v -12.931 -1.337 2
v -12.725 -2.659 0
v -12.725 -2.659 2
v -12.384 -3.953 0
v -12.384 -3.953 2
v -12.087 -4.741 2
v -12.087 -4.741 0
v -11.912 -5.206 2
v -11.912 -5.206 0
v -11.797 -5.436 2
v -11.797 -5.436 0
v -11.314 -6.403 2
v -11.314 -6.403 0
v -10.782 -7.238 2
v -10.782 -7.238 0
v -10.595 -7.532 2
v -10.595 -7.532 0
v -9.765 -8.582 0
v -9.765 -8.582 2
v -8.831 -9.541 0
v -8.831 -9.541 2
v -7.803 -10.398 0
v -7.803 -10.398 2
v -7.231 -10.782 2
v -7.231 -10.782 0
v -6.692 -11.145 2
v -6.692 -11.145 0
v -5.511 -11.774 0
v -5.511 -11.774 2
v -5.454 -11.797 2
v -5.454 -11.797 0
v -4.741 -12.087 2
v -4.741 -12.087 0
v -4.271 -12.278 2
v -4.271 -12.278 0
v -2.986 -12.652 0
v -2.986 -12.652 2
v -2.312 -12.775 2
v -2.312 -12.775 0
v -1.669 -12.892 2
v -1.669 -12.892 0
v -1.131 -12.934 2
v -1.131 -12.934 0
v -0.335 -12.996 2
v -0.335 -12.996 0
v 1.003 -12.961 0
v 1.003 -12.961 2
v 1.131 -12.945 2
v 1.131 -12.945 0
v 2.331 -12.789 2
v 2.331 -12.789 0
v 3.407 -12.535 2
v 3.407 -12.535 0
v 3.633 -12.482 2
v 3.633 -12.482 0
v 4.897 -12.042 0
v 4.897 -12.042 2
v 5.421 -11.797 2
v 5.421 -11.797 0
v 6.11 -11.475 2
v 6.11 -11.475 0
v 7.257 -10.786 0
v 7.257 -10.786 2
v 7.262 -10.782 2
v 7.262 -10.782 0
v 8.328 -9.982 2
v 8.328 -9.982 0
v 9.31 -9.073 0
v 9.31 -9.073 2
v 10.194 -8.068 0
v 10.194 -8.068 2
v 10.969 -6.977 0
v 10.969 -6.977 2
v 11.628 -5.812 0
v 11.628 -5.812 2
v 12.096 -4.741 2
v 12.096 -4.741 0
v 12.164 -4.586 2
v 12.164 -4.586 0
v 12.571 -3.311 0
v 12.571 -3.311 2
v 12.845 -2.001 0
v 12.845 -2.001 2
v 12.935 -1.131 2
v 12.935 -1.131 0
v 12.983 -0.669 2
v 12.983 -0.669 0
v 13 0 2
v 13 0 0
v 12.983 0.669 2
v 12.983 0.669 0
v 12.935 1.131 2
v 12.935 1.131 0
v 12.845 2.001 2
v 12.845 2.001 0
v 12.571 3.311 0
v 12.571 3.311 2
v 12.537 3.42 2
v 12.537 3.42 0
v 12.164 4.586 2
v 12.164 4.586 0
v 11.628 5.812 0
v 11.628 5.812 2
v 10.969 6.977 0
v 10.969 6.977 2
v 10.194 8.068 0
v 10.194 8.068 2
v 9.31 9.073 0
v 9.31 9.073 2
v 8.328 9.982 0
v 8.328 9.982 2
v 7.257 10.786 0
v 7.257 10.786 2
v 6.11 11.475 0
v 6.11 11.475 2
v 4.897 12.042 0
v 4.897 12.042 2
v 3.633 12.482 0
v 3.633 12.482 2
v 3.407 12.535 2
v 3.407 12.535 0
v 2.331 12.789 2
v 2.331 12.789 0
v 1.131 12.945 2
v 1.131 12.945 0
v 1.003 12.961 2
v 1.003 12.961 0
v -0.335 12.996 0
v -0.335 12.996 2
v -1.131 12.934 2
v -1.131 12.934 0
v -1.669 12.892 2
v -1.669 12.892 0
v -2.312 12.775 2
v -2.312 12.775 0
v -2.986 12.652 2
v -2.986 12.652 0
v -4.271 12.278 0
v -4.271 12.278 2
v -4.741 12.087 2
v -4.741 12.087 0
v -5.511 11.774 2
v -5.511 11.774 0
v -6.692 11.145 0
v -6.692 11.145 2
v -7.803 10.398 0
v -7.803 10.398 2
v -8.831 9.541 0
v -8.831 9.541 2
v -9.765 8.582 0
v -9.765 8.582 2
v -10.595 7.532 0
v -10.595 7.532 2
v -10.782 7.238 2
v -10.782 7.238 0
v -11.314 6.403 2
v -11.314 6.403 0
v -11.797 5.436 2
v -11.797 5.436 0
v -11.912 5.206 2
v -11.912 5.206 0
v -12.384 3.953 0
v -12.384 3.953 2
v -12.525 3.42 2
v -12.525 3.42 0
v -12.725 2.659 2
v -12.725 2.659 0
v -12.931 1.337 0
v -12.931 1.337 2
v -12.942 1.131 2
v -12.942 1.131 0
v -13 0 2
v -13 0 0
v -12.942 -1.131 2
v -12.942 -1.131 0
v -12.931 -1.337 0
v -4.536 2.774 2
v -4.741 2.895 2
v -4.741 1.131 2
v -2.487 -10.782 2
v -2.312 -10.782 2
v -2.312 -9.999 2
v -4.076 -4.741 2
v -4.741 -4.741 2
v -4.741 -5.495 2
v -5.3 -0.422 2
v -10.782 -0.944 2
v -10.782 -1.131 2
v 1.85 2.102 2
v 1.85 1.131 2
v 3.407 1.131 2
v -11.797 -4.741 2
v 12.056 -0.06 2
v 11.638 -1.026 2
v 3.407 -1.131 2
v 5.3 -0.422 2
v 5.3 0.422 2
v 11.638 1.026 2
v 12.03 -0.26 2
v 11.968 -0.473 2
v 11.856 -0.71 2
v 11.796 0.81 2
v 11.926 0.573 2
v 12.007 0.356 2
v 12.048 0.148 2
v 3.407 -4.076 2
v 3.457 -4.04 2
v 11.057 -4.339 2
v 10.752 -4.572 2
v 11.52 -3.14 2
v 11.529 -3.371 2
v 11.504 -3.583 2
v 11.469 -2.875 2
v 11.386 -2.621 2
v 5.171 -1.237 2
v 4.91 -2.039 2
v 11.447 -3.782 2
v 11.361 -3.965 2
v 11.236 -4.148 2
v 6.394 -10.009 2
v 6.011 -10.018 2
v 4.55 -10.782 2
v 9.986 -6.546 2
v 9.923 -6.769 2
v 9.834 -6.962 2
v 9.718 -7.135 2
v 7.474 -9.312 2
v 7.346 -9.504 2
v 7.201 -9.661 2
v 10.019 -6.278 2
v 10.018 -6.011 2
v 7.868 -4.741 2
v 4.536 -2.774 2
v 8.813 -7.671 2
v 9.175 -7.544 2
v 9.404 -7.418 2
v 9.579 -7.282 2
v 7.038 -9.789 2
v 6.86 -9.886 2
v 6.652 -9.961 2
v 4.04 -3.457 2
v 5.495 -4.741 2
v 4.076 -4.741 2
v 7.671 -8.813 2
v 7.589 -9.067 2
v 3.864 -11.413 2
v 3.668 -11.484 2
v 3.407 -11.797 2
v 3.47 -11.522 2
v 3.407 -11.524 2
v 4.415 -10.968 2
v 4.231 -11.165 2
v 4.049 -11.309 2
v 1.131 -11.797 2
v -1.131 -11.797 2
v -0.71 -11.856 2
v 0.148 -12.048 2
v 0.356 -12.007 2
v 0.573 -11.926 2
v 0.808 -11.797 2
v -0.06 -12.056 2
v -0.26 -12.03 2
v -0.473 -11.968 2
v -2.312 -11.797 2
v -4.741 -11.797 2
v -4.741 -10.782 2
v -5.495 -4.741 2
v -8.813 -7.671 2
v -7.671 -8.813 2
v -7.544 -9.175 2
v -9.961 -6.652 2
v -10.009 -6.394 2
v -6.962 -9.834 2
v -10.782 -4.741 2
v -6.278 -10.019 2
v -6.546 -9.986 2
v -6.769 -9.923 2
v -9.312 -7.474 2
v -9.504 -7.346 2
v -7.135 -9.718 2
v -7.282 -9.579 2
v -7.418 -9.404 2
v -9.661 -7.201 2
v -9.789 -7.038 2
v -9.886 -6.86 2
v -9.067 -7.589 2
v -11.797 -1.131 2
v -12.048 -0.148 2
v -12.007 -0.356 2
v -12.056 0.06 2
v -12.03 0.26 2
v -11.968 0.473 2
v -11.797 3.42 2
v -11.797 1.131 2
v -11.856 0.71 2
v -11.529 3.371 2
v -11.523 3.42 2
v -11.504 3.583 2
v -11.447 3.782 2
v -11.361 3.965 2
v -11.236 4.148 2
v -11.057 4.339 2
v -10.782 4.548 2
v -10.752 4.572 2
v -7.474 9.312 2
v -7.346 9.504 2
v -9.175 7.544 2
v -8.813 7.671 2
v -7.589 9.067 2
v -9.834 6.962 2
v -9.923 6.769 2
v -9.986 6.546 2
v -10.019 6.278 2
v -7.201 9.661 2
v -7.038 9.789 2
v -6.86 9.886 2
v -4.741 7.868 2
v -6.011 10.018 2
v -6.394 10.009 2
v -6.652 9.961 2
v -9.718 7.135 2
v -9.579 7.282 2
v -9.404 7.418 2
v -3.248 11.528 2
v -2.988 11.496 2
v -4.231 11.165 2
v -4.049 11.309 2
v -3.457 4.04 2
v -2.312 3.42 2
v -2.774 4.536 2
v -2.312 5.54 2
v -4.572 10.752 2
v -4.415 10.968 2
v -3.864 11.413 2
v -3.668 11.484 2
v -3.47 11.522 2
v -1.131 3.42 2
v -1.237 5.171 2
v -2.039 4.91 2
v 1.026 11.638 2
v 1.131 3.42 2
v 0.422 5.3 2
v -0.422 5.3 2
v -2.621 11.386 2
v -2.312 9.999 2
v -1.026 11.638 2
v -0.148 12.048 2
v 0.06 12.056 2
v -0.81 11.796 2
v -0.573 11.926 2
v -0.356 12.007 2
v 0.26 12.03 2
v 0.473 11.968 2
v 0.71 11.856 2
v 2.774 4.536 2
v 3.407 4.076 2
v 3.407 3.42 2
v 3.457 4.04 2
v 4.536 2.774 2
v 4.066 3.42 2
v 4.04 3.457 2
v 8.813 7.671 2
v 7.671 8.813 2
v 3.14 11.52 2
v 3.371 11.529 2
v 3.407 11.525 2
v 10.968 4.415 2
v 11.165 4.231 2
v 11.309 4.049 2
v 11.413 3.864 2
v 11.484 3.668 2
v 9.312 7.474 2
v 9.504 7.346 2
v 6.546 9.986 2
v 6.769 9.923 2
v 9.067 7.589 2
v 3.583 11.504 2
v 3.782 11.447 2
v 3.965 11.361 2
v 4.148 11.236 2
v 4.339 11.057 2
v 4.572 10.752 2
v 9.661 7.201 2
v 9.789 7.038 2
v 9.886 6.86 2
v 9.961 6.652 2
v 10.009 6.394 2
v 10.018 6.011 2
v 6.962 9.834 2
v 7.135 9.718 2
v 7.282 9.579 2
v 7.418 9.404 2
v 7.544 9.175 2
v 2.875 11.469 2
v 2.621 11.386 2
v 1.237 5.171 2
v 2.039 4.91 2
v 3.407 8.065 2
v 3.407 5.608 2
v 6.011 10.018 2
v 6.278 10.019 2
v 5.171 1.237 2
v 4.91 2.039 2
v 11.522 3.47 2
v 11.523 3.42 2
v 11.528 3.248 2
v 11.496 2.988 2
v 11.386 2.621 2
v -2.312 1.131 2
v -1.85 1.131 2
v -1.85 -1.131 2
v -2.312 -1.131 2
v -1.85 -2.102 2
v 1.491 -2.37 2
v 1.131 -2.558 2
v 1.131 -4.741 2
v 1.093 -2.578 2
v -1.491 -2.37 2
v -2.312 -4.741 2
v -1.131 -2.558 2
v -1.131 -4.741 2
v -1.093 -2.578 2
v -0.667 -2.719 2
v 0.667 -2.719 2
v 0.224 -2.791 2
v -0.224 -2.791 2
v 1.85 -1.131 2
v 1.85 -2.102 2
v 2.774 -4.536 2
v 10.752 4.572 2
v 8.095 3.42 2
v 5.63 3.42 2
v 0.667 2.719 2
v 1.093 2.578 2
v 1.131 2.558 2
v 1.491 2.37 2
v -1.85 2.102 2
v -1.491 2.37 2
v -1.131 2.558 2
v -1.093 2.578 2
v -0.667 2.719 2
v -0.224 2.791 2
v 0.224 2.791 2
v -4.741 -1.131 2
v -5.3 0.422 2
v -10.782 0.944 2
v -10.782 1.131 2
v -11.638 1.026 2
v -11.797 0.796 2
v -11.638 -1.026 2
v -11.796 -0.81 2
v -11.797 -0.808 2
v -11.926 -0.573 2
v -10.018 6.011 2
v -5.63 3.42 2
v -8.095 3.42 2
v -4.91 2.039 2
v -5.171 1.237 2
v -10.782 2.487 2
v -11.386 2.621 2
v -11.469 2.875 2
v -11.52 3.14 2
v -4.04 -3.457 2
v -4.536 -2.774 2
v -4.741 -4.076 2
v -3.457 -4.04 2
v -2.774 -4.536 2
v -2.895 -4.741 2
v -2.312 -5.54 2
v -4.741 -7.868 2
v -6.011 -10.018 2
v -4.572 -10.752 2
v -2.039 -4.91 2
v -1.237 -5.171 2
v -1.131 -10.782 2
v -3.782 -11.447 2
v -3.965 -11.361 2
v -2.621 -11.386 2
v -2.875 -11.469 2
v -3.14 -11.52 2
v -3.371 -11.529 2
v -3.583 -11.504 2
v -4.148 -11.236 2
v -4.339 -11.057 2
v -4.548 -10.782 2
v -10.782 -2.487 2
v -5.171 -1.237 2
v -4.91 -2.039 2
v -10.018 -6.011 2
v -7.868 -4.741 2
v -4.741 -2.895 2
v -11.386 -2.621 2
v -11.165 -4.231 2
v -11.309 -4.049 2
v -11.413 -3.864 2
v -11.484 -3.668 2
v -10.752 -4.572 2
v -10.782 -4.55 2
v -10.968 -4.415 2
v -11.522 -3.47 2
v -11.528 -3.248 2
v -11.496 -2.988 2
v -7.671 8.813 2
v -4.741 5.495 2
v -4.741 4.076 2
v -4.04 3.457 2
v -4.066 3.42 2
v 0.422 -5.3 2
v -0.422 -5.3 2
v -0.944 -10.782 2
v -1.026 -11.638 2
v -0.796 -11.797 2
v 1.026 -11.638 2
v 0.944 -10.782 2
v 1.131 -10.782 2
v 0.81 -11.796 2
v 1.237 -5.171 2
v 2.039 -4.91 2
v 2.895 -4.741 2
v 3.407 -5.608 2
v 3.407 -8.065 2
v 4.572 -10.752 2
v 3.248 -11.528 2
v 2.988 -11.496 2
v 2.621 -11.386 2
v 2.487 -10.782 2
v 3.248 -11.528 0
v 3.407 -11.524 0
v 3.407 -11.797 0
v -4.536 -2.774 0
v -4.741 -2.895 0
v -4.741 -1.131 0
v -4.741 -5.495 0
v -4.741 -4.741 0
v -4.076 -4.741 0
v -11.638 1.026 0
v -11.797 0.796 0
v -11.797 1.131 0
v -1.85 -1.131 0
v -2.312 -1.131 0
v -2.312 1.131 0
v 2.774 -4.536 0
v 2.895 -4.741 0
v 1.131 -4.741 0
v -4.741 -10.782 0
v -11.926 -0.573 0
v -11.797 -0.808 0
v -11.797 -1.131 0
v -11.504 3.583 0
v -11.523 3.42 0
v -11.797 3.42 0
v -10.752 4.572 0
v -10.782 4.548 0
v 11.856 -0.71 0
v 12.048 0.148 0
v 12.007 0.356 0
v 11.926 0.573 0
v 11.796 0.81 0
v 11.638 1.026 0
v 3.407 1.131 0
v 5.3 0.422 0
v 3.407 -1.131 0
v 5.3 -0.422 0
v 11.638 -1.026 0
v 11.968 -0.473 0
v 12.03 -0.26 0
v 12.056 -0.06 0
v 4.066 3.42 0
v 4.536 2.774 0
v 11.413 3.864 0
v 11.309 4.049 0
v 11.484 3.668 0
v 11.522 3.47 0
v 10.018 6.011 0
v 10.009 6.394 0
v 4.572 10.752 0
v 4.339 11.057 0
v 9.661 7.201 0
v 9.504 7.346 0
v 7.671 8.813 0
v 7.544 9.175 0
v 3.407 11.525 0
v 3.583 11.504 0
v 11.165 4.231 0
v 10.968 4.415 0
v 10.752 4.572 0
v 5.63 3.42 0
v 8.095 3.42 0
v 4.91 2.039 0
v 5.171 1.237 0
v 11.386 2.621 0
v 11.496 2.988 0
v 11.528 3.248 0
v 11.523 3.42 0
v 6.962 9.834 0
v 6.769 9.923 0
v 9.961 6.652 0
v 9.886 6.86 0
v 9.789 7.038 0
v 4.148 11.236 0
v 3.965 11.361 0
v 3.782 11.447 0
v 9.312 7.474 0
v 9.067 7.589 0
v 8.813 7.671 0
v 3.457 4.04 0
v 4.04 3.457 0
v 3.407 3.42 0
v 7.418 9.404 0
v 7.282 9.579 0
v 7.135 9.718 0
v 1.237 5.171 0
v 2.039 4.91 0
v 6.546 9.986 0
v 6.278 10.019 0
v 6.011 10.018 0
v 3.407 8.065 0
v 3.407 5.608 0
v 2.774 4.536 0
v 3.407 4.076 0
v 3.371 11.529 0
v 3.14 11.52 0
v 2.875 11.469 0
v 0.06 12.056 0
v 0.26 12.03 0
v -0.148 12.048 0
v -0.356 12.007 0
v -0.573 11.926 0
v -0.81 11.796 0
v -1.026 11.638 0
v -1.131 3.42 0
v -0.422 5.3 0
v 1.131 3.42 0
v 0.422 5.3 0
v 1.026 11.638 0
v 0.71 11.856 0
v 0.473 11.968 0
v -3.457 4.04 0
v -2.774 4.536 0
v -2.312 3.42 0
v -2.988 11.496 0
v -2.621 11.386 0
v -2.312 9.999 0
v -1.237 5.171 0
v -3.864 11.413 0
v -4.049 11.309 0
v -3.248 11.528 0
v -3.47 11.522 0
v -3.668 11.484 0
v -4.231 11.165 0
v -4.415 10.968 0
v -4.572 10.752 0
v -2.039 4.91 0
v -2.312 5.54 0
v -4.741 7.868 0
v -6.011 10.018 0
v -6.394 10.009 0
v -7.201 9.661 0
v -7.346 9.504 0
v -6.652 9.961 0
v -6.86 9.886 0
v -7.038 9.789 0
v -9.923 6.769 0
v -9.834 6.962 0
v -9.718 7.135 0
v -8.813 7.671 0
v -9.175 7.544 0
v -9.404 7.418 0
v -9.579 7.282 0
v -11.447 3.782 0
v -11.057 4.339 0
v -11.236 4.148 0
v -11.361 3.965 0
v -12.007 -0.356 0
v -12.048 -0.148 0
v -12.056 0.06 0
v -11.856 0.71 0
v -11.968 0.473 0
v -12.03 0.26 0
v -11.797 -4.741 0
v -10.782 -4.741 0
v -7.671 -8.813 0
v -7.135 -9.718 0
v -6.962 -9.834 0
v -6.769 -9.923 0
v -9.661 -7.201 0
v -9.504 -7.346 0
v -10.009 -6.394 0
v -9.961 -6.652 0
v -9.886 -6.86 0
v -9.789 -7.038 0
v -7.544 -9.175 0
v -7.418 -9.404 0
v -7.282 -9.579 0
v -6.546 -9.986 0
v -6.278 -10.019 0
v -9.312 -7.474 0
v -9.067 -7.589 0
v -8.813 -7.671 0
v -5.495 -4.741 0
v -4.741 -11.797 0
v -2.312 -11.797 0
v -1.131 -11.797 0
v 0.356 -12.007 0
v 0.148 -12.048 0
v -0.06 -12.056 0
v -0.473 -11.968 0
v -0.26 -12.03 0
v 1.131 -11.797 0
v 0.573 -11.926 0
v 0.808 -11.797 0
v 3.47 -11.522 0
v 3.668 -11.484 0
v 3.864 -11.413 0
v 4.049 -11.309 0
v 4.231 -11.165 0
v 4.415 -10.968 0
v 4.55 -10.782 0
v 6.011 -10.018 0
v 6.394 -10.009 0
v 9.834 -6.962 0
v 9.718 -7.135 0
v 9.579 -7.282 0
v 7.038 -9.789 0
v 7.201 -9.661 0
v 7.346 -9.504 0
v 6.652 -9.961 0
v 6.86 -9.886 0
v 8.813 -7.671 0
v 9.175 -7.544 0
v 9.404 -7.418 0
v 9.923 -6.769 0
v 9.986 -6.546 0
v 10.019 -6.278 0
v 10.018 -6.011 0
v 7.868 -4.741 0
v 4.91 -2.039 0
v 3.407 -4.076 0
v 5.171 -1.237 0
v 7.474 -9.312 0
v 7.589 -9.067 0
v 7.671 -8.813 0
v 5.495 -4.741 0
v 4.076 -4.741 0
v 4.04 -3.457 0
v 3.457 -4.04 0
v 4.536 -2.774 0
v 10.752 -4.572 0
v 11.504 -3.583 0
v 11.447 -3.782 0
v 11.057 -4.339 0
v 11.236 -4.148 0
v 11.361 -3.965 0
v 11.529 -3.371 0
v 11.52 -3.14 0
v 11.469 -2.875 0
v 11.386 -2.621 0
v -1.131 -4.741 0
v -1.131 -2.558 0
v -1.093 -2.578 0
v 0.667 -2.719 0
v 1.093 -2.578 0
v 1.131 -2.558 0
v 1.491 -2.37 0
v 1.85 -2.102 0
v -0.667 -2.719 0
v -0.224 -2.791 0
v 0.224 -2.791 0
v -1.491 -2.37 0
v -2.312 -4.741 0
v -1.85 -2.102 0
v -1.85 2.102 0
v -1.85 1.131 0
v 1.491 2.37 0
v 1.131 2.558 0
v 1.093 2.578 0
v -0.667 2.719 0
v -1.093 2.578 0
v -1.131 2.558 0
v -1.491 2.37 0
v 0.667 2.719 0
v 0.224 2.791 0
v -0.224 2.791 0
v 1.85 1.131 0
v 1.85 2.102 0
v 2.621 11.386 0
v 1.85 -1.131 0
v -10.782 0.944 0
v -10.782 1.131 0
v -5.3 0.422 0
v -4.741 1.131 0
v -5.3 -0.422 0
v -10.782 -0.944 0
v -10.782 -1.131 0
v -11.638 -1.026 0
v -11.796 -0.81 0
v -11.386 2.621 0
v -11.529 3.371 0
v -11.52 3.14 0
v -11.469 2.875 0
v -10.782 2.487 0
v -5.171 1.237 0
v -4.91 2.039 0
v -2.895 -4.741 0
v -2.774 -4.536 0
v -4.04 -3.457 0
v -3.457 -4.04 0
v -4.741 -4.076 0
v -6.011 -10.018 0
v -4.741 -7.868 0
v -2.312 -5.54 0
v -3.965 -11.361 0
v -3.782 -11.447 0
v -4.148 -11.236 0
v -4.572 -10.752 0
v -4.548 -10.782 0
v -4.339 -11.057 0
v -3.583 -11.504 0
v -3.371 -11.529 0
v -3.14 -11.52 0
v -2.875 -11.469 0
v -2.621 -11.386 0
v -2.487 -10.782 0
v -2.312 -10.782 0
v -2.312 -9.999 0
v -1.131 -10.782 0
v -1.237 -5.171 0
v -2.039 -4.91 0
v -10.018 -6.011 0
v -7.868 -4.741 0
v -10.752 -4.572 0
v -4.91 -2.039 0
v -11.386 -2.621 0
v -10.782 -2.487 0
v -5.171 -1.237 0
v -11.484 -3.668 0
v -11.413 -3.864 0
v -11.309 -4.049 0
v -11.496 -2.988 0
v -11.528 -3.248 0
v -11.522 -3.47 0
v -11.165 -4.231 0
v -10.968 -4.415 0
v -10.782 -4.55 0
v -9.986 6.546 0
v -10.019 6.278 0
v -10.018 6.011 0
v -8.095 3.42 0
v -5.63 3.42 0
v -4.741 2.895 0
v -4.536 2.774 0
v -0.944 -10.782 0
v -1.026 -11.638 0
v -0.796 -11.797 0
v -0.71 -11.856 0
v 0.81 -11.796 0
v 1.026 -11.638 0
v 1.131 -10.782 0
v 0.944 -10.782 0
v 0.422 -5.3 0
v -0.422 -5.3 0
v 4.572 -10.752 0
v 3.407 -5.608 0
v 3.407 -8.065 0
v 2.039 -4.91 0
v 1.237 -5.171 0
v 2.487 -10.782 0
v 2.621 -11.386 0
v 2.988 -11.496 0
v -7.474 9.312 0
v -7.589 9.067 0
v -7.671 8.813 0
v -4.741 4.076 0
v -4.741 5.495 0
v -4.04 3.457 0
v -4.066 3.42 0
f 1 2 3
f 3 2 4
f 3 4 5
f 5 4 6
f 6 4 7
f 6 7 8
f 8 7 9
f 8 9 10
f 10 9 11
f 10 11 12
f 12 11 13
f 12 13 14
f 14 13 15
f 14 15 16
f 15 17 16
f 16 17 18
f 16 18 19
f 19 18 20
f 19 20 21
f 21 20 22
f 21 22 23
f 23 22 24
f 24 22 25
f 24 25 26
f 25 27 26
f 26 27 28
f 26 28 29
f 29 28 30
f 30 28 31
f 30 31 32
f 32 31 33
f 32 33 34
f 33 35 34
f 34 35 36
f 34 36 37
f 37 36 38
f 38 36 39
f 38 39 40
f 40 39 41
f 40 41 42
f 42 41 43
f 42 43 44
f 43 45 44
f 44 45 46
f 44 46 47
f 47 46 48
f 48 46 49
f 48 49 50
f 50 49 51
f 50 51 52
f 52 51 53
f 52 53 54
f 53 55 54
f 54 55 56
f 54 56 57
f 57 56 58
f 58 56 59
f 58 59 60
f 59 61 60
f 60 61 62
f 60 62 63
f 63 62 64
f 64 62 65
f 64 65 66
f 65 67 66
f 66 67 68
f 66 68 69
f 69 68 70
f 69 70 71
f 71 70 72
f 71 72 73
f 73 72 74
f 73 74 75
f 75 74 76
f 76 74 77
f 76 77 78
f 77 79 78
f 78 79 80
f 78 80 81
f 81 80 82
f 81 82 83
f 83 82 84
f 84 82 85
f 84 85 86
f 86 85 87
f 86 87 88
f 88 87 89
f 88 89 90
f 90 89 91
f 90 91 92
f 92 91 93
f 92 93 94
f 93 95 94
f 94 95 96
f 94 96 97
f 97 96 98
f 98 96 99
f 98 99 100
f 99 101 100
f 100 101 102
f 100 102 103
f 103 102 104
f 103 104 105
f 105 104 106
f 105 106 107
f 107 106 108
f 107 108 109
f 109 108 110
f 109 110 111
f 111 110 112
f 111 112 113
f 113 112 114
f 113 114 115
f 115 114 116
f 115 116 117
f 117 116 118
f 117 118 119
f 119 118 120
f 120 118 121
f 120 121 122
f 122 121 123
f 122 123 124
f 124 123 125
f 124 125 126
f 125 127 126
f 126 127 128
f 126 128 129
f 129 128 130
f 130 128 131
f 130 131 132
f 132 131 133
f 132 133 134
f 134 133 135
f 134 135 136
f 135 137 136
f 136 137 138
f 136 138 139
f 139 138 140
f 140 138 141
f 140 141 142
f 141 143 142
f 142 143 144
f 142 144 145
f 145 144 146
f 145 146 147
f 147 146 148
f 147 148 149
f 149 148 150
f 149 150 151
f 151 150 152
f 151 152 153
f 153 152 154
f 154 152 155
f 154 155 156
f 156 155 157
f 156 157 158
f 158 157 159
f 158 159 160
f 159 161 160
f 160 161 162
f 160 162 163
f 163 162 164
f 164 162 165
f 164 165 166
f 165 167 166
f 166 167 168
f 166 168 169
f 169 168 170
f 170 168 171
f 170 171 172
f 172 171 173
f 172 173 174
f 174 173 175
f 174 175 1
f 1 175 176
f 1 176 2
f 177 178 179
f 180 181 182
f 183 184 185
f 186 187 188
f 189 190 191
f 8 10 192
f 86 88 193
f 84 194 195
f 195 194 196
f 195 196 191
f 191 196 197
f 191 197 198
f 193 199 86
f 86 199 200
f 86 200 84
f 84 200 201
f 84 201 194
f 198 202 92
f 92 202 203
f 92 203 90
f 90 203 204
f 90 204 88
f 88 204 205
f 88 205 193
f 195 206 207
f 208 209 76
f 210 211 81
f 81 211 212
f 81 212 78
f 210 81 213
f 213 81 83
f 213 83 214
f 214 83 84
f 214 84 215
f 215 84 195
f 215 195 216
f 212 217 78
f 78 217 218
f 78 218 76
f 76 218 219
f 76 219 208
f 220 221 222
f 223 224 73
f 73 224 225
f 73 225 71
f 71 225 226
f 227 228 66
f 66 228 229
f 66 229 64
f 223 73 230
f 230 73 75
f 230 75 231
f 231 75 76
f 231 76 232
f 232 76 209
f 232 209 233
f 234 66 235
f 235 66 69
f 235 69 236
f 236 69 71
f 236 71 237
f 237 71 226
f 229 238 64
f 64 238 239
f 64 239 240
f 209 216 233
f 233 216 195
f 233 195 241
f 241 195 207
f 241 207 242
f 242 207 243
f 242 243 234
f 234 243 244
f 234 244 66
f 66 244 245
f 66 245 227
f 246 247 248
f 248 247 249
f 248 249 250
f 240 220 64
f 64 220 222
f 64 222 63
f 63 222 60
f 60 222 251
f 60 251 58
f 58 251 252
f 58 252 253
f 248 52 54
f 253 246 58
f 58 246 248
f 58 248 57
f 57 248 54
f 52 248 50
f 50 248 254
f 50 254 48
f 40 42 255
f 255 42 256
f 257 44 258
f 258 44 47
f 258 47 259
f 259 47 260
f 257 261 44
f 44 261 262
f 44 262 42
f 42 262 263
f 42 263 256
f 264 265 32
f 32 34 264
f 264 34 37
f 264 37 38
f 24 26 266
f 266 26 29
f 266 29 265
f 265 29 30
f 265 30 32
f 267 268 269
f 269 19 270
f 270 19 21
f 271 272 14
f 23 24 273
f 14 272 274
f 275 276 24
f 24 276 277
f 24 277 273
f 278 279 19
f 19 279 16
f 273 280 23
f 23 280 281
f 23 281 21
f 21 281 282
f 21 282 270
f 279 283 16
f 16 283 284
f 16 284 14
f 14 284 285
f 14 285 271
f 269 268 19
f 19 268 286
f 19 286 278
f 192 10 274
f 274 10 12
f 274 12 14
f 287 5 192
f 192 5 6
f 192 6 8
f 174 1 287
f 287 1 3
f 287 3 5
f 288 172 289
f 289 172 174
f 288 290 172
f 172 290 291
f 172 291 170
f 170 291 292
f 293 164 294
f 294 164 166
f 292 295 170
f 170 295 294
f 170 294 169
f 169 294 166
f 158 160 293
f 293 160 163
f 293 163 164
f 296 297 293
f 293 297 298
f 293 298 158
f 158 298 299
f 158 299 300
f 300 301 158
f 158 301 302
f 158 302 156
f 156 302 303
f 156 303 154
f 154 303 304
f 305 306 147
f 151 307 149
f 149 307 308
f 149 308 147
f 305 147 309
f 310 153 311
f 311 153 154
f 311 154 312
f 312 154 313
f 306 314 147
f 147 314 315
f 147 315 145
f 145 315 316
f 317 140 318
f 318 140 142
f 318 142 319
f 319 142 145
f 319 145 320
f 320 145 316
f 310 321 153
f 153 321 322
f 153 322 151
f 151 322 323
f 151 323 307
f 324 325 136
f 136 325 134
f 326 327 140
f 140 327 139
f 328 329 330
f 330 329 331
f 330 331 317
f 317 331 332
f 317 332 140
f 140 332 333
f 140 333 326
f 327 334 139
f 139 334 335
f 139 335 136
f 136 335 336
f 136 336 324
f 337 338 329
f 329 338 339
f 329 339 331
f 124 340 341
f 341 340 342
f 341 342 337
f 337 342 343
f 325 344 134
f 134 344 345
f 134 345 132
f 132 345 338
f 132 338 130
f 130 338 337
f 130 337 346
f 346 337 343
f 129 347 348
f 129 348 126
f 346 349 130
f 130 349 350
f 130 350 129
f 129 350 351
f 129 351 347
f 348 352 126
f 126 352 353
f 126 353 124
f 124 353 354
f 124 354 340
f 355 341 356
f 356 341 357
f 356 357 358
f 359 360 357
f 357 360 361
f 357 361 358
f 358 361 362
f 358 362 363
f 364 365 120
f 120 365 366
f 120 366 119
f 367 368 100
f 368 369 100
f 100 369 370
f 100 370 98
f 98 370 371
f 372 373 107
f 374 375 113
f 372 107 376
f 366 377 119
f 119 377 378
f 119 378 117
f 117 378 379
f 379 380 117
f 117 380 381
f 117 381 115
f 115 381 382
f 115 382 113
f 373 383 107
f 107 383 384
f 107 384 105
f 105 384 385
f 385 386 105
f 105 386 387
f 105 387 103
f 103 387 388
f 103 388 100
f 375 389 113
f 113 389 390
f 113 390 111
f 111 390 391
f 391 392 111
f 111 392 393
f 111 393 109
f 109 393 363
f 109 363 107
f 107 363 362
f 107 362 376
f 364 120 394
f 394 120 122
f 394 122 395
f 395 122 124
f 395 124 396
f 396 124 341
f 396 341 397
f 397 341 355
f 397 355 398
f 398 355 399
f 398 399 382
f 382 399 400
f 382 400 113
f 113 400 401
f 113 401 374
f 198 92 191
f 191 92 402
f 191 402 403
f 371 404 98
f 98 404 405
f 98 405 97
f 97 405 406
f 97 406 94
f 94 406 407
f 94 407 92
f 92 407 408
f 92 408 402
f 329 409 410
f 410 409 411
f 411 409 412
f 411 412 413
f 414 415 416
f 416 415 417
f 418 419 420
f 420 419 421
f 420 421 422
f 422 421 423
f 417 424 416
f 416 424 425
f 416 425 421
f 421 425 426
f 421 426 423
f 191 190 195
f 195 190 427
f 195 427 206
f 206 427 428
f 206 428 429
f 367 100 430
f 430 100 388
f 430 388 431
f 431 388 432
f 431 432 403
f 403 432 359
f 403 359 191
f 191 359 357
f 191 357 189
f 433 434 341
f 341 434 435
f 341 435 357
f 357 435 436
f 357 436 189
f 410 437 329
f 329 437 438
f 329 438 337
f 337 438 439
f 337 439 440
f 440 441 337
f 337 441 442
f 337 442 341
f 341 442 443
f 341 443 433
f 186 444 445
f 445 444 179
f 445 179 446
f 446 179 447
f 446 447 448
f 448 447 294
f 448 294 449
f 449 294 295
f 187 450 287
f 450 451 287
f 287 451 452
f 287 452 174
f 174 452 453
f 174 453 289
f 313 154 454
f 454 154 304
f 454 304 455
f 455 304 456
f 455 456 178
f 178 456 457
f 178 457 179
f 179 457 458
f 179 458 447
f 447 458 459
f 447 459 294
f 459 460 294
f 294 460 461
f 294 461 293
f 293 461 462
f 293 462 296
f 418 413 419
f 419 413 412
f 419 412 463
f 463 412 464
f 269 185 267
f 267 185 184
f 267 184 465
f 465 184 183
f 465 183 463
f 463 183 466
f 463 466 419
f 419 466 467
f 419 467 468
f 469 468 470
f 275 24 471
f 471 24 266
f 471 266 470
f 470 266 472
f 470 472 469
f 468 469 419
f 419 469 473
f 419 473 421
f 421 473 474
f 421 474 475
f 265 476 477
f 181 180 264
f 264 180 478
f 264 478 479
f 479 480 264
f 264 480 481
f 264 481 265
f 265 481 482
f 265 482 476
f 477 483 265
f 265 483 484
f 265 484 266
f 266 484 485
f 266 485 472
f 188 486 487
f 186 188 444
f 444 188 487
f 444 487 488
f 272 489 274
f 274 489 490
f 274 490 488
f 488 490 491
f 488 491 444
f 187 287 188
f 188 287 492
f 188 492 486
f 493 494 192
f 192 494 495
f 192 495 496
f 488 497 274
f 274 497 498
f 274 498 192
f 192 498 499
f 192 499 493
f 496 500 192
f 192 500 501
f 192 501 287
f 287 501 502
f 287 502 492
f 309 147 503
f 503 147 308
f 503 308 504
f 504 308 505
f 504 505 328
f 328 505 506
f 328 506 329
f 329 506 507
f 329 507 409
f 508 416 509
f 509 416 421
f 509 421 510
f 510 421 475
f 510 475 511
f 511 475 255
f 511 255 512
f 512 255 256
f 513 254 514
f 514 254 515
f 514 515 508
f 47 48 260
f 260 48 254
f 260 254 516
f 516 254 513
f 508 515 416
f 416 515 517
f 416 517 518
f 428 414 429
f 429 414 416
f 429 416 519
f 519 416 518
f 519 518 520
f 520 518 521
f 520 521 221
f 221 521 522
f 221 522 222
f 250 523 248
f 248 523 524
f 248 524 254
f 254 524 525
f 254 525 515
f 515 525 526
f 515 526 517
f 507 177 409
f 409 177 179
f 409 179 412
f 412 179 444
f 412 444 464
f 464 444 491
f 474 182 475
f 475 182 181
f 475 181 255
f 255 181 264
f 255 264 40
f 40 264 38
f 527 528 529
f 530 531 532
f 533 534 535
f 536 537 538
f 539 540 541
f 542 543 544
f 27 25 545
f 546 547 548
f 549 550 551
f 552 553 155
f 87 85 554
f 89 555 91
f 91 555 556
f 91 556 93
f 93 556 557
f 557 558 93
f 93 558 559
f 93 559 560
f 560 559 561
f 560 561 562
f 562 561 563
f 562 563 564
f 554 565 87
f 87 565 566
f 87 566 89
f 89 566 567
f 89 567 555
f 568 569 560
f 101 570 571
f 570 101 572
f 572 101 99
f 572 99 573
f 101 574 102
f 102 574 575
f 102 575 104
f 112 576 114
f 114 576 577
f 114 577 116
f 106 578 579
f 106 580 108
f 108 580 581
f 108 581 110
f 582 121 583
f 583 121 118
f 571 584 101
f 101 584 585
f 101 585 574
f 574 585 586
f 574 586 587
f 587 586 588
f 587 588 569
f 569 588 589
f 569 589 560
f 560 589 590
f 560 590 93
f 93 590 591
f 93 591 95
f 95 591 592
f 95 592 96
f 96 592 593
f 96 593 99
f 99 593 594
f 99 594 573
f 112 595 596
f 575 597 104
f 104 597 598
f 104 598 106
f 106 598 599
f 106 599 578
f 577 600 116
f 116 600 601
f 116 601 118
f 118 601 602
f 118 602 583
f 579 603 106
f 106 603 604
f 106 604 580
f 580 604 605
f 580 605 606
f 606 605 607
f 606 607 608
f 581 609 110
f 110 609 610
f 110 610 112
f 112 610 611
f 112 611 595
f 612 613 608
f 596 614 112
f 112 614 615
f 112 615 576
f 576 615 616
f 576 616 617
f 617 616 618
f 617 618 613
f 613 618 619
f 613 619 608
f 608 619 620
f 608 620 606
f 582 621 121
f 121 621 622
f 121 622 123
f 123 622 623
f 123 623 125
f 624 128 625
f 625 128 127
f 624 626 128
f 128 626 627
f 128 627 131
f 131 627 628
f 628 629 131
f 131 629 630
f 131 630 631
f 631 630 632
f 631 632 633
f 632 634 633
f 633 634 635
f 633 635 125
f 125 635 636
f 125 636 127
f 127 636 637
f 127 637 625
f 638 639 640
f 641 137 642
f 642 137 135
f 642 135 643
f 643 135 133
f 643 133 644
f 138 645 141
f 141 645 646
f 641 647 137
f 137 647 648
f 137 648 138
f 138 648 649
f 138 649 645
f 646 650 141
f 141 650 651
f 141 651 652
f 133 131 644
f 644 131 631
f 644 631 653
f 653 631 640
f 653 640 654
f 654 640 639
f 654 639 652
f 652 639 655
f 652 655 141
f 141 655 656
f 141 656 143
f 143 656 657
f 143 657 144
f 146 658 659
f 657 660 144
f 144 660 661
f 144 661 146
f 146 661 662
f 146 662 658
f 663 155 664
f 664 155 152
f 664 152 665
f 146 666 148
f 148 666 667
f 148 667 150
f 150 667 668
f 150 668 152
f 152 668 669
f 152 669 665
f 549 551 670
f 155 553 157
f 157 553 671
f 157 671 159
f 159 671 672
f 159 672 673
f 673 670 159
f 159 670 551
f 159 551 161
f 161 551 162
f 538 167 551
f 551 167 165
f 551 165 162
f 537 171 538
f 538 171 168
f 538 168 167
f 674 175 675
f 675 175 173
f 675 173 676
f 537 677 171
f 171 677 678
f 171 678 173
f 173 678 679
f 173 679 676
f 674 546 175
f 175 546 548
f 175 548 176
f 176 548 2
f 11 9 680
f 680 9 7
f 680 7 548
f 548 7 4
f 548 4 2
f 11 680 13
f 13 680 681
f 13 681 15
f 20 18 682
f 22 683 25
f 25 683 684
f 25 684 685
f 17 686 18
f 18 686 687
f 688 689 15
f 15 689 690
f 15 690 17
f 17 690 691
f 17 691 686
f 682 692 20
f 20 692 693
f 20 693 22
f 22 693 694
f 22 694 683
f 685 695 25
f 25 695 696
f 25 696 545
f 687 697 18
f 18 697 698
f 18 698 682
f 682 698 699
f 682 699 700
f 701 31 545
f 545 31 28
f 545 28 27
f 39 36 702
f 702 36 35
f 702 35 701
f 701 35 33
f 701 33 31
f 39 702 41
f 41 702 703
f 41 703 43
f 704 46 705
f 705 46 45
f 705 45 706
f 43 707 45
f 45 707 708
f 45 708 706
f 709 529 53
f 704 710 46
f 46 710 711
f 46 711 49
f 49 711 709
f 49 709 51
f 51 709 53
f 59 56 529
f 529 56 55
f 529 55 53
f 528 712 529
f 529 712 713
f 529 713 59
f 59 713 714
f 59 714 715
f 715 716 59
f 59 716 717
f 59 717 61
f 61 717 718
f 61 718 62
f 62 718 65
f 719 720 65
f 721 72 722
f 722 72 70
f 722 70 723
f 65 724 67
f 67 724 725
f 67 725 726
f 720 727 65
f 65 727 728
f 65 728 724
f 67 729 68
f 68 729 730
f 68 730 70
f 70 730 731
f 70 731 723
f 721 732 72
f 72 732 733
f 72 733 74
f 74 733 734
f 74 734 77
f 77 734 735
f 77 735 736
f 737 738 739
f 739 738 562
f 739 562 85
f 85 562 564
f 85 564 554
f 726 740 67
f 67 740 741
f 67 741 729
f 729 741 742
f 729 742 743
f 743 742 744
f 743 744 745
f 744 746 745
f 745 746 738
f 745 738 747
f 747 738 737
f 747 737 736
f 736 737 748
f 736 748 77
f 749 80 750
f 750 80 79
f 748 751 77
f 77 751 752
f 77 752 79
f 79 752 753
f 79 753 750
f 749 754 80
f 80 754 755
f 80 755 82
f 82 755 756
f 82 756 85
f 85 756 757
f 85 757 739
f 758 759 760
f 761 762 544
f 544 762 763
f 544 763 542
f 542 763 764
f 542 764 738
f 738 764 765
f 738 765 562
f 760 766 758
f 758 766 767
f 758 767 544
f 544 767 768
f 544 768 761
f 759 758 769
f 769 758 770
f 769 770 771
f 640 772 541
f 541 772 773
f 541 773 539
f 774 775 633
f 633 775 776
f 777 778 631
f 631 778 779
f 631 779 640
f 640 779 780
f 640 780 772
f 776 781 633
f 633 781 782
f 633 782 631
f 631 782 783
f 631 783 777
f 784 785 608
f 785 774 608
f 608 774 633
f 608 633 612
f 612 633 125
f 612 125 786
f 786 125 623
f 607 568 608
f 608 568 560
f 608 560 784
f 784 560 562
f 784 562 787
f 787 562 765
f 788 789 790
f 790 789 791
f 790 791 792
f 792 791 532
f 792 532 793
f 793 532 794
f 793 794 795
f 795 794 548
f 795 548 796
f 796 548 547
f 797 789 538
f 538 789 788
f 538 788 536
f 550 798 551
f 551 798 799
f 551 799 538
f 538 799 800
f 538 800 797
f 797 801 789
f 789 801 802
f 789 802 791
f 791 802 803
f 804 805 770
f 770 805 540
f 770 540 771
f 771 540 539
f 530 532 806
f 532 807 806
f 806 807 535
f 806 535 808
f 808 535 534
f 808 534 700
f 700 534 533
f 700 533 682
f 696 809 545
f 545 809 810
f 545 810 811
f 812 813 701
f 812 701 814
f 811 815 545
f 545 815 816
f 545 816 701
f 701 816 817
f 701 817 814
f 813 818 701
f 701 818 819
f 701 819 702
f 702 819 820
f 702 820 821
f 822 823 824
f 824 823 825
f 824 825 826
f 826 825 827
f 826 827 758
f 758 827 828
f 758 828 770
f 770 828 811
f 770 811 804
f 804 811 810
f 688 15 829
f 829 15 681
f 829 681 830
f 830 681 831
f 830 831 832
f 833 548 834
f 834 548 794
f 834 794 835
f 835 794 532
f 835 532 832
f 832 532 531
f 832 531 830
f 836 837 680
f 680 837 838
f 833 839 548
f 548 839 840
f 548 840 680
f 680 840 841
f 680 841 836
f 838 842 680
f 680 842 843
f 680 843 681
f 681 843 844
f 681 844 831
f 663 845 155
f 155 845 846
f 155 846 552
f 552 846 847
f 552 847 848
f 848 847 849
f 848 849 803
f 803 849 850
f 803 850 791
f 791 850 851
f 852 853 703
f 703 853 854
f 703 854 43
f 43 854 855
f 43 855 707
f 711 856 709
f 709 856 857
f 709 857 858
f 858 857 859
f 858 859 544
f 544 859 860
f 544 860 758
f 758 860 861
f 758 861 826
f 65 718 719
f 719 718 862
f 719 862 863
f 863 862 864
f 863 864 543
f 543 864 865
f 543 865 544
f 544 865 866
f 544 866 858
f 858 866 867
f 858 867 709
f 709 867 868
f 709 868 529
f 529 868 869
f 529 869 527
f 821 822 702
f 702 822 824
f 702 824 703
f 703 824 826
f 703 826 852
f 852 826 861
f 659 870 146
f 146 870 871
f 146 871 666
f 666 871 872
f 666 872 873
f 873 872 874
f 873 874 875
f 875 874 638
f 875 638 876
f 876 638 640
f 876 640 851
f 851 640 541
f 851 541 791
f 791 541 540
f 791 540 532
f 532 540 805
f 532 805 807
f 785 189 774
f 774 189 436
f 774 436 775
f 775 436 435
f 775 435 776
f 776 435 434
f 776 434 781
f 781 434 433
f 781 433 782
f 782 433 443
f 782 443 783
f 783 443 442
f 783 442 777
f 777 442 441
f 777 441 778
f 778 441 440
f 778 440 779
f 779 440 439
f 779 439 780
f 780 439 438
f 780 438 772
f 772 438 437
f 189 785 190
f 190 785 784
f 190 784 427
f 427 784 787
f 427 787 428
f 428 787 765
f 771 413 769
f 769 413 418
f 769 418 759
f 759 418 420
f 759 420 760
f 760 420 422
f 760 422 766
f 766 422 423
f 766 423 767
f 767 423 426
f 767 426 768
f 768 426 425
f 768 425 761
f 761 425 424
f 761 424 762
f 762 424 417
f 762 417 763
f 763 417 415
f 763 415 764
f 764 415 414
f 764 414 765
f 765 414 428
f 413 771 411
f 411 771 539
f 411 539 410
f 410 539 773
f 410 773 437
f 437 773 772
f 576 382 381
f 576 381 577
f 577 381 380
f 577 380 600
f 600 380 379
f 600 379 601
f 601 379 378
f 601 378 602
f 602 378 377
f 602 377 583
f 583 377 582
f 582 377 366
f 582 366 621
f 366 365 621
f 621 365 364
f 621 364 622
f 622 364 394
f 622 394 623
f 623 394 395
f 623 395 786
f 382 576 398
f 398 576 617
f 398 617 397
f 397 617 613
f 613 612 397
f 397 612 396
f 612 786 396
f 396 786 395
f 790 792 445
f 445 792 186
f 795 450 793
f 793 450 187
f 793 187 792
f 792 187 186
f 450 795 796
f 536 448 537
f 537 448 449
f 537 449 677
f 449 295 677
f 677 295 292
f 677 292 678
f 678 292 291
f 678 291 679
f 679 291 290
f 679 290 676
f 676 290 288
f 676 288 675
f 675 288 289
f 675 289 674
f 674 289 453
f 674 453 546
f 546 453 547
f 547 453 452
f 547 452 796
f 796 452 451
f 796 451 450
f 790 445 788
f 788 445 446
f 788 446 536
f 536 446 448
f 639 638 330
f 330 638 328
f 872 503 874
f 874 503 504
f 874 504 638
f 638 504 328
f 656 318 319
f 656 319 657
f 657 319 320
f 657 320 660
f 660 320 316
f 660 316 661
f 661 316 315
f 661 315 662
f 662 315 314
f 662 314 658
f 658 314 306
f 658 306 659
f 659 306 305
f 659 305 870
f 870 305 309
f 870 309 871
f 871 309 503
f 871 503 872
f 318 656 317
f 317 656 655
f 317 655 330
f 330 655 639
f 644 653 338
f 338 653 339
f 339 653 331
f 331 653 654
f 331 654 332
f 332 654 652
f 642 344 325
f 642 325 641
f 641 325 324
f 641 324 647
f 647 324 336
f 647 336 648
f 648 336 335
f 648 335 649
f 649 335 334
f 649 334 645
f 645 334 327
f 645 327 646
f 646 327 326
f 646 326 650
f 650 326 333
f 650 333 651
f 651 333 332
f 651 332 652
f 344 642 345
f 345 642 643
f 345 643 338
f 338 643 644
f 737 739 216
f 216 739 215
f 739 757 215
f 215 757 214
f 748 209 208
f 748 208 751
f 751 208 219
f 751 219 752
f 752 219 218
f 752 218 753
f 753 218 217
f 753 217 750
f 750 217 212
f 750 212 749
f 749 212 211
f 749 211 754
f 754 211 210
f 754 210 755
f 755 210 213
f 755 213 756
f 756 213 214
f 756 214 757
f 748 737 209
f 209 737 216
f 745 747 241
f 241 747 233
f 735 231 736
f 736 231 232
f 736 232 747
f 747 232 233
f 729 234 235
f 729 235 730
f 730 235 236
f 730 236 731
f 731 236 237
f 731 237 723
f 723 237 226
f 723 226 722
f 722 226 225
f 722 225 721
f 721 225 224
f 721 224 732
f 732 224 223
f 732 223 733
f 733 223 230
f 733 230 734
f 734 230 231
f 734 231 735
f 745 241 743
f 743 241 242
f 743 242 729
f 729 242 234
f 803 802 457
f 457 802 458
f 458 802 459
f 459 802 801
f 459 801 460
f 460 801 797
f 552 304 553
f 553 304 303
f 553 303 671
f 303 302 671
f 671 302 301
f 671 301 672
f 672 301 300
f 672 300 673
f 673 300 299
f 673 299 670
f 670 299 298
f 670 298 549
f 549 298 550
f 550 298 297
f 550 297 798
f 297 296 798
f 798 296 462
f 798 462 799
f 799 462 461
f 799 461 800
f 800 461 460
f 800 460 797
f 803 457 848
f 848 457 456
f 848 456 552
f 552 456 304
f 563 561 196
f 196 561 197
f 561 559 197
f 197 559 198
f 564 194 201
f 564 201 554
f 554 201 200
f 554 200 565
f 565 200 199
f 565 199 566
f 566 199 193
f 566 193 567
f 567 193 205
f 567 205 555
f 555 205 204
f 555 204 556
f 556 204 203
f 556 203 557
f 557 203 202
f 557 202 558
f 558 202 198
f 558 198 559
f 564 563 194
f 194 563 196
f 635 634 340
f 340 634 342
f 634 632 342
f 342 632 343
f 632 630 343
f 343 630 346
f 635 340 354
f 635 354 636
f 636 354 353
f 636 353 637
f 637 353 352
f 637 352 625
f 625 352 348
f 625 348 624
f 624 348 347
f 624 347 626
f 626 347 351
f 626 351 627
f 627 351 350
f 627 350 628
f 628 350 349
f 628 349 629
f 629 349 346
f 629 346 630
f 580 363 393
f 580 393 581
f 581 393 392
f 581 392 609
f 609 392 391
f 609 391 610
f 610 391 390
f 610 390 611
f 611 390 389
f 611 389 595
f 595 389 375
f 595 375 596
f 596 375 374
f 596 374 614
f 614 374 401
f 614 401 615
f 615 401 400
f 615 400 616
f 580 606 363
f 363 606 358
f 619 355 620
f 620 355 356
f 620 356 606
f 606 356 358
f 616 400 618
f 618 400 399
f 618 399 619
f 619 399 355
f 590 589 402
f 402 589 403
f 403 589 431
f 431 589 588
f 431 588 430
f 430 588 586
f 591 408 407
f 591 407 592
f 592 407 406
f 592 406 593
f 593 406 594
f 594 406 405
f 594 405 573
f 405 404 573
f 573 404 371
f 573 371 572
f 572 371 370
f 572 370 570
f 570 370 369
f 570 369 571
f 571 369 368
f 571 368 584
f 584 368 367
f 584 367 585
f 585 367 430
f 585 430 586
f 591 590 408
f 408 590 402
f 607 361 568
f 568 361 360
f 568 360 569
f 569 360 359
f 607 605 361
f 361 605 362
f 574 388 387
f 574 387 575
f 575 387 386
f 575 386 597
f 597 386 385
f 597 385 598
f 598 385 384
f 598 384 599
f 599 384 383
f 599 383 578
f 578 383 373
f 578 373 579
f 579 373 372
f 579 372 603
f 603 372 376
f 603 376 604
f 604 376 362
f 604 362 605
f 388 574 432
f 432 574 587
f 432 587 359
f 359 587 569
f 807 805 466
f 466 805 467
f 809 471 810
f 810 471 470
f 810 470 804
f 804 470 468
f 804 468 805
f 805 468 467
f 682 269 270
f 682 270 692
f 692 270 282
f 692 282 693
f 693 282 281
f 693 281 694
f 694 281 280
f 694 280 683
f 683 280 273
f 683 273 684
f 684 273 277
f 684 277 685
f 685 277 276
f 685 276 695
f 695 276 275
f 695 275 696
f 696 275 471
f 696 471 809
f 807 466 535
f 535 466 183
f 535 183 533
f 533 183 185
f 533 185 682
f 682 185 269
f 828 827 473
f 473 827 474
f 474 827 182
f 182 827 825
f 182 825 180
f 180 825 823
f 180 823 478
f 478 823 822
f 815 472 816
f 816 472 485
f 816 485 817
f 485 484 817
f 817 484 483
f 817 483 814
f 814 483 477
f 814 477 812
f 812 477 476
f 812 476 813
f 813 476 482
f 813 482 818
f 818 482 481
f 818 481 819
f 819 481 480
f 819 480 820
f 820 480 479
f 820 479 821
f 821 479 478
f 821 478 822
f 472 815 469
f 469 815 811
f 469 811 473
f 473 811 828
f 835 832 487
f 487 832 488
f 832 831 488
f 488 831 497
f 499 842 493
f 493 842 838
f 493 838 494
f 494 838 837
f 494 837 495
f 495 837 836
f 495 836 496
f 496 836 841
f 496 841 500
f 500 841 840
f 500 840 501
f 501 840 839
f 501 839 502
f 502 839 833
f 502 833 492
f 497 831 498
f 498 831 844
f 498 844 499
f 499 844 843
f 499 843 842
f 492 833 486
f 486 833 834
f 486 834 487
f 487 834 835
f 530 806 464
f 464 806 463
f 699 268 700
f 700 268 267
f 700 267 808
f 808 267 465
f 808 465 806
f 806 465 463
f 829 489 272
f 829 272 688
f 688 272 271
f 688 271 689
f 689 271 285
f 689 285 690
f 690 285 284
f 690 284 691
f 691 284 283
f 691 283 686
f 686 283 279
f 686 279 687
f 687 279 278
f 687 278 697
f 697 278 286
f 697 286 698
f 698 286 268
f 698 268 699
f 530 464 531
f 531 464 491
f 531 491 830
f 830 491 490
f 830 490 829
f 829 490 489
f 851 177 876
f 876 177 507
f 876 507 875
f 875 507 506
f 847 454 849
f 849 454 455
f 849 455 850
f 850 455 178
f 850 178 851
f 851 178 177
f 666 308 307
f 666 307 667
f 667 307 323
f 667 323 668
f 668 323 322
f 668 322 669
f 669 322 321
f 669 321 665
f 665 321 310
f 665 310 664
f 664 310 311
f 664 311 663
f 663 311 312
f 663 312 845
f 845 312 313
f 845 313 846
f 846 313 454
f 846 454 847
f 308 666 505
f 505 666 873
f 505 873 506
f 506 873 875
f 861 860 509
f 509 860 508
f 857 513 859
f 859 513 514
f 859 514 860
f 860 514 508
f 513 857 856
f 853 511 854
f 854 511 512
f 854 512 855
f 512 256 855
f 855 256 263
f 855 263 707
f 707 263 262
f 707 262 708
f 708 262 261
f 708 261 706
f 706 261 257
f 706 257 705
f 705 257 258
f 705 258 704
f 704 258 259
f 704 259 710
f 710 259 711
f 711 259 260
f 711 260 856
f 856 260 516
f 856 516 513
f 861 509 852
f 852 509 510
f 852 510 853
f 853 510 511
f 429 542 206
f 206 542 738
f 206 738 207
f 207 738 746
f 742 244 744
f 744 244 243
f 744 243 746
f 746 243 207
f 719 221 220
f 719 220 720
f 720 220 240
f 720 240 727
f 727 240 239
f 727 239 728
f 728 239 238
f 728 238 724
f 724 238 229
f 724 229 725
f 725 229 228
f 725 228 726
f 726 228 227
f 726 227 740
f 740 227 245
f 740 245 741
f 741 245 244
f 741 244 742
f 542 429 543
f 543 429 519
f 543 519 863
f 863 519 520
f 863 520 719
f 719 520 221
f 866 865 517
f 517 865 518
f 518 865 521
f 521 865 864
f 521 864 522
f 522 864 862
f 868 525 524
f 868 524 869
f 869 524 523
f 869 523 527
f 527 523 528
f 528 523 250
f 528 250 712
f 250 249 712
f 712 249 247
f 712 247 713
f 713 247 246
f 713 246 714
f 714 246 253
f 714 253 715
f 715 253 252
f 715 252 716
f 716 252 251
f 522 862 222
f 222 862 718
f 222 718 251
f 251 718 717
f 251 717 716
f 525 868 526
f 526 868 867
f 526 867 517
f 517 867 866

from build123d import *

# Parameters (mm, degrees)
SKETCH1_R           = 13
BOSS_EXTRUDE1_DEPTH = 2
CUT_EXTRUDE1_DEPTH  = 2
CUT_EXTRUDE2_DEPTH  = 2


with BuildPart() as part:
    # Sketch1 → Boss-Extrude1 (new body)
    with BuildSketch(Plane.XY):
        Circle(SKETCH1_R)
    extrude(amount=BOSS_EXTRUDE1_DEPTH)

    # Sketch2 → Cut-Extrude1 (cut)
    with BuildSketch(Plane.XY.offset(2)):
        with BuildLine():
            Line((1.85, 2.101784956), (1.85, -2.101784956))
            ThreePointArc((1.85, -2.101784956), (0, -2.8), (-1.85, -2.101784956))
            Line((-1.85, -2.101784956), (-1.85, 2.101784956))
            ThreePointArc((-1.85, 2.101784956), (0, 2.8), (1.85, 2.101784956))
        make_face()
    extrude(amount=-CUT_EXTRUDE1_DEPTH, mode=Mode.SUBTRACT)

    # Sketch3 → Cut-Extrude2 (cut)
    with BuildSketch(Plane.XY.offset(2)):
        with BuildLine():
            Line((-0.421898485, 5.3), (0.421898485, 5.3))
            Line((0.421898485, 5.3), (1.025755042, 11.638206547))
            add(Edge.make_bspline(
                [(-1.025755042, 11.638206547), (0, 12.476130474), (1.025755042, 11.638206547)],
                knots=[0, 0, 0, 1, 1, 1], degree=2))
            Line((-1.025755042, 11.638206547), (-0.421898485, 5.3))
        make_face()
        with BuildLine():
            Line((2.039039374, 4.910225735), (4.571954624, 10.751616435))
            add(Edge.make_bspline(
                [(2.62085259, 11.385567915), (3.85533634, 11.865505185), (4.571954624, 10.751616435)],
                knots=[0, 0, 0, 1, 1, 1], degree=2))
            Line((2.62085259, 11.385567915), (1.236540767, 5.170973338))
            Line((1.236540767, 5.170973338), (2.039039374, 4.910225735))
        make_face()
        with BuildLine():
            Line((3.456584881, 4.039804363), (7.670619433, 8.812583195))
            add(Edge.make_bspline(
                [(6.01091291, 10.018430567), (7.333285498, 10.093401577), (7.670619433, 8.812583195)],
                knots=[0, 0, 0, 1, 1, 1], degree=2))
            Line((6.01091291, 10.018430567), (2.773938793, 4.535775778))
            Line((2.773938793, 4.535775778), (3.456584881, 4.039804363))
        make_face()
        with BuildLine():
            Line((4.535775778, 2.773938793), (10.018430567, 6.01091291))
            add(Edge.make_bspline(
                [(8.812583195, 7.670619433), (10.093401577, 7.333285498), (10.018430567, 6.01091291)],
                knots=[0, 0, 0, 1, 1, 1], degree=2))
            Line((8.812583195, 7.670619433), (4.039804363, 3.456584881))
            Line((4.039804363, 3.456584881), (4.535775778, 2.773938793))
        make_face()
        with BuildLine():
            Line((5.170973338, 1.236540767), (11.385567915, 2.62085259))
            add(Edge.make_bspline(
                [(10.751616435, 4.571954624), (11.865505185, 3.85533634), (11.385567915, 2.62085259)],
                knots=[0, 0, 0, 1, 1, 1], degree=2))
            Line((10.751616435, 4.571954624), (4.910225735, 2.039039374))
            Line((4.910225735, 2.039039374), (5.170973338, 1.236540767))
        make_face()
        with BuildLine():
            Line((5.3, -0.421898485), (11.638206547, -1.025755042))
            add(Edge.make_bspline(
                [(11.638206547, 1.025755042), (12.476130474, 0), (11.638206547, -1.025755042)],
                knots=[0, 0, 0, 1, 1, 1], degree=2))
            Line((11.638206547, 1.025755042), (5.3, 0.421898485))
            Line((5.3, 0.421898485), (5.3, -0.421898485))
        make_face()
        with BuildLine():
            Line((4.910225735, -2.039039374), (10.751616435, -4.571954624))
            add(Edge.make_bspline(
                [(11.385567915, -2.62085259), (11.865505185, -3.85533634), (10.751616435, -4.571954624)],
                knots=[0, 0, 0, 1, 1, 1], degree=2))
            Line((11.385567915, -2.62085259), (5.170973338, -1.236540767))
            Line((5.170973338, -1.236540767), (4.910225735, -2.039039374))
        make_face()
        with BuildLine():
            Line((4.039804363, -3.456584881), (8.812583195, -7.670619433))
            add(Edge.make_bspline(
                [(10.018430567, -6.01091291), (10.093401577, -7.333285498), (8.812583195, -7.670619433)],
                knots=[0, 0, 0, 1, 1, 1], degree=2))
            Line((10.018430567, -6.01091291), (4.535775778, -2.773938793))
            Line((4.535775778, -2.773938793), (4.039804363, -3.456584881))
        make_face()
        with BuildLine():
            Line((2.773938793, -4.535775778), (6.01091291, -10.018430567))
            add(Edge.make_bspline(
                [(7.670619433, -8.812583195), (7.333285498, -10.093401577), (6.01091291, -10.018430567)],
                knots=[0, 0, 0, 1, 1, 1], degree=2))
            Line((7.670619433, -8.812583195), (3.456584881, -4.039804363))
            Line((3.456584881, -4.039804363), (2.773938793, -4.535775778))
        make_face()
        with BuildLine():
            Line((1.236540767, -5.170973338), (2.62085259, -11.385567915))
            add(Edge.make_bspline(
                [(4.571954624, -10.751616435), (3.85533634, -11.865505185), (2.62085259, -11.385567915)],
                knots=[0, 0, 0, 1, 1, 1], degree=2))
            Line((4.571954624, -10.751616435), (2.039039374, -4.910225735))
            Line((2.039039374, -4.910225735), (1.236540767, -5.170973338))
        make_face()
        with BuildLine():
            Line((-0.421898485, -5.3), (-1.025755042, -11.638206547))
            add(Edge.make_bspline(
                [(1.025755042, -11.638206547), (0, -12.476130474), (-1.025755042, -11.638206547)],
                knots=[0, 0, 0, 1, 1, 1], degree=2))
            Line((1.025755042, -11.638206547), (0.421898485, -5.3))
            Line((0.421898485, -5.3), (-0.421898485, -5.3))
        make_face()
        with BuildLine():
            Line((-2.039039374, -4.910225735), (-4.571954624, -10.751616435))
            add(Edge.make_bspline(
                [(-2.62085259, -11.385567915), (-3.85533634, -11.865505185), (-4.571954624, -10.751616435)],
                knots=[0, 0, 0, 1, 1, 1], degree=2))
            Line((-2.62085259, -11.385567915), (-1.236540767, -5.170973338))
            Line((-1.236540767, -5.170973338), (-2.039039374, -4.910225735))
        make_face()
        with BuildLine():
            Line((-3.456584881, -4.039804363), (-7.670619433, -8.812583195))
            add(Edge.make_bspline(
                [(-6.01091291, -10.018430567), (-7.333285498, -10.093401577), (-7.670619433, -8.812583195)],
                knots=[0, 0, 0, 1, 1, 1], degree=2))
            Line((-6.01091291, -10.018430567), (-2.773938793, -4.535775778))
            Line((-2.773938793, -4.535775778), (-3.456584881, -4.039804363))
        make_face()
        with BuildLine():
            Line((-4.535775778, -2.773938793), (-10.018430567, -6.01091291))
            add(Edge.make_bspline(
                [(-8.812583195, -7.670619433), (-10.093401577, -7.333285498), (-10.018430567, -6.01091291)],
                knots=[0, 0, 0, 1, 1, 1], degree=2))
            Line((-8.812583195, -7.670619433), (-4.039804363, -3.456584881))
            Line((-4.039804363, -3.456584881), (-4.535775778, -2.773938793))
        make_face()
        with BuildLine():
            Line((-5.170973338, -1.236540767), (-11.385567915, -2.62085259))
            add(Edge.make_bspline(
                [(-10.751616435, -4.571954624), (-11.865505185, -3.85533634), (-11.385567915, -2.62085259)],
                knots=[0, 0, 0, 1, 1, 1], degree=2))
            Line((-10.751616435, -4.571954624), (-4.910225735, -2.039039374))
            Line((-4.910225735, -2.039039374), (-5.170973338, -1.236540767))
        make_face()
        with BuildLine():
            Line((-5.3, 0.421898485), (-11.638206547, 1.025755042))
            add(Edge.make_bspline(
                [(-11.638206547, -1.025755042), (-12.476130474, 0), (-11.638206547, 1.025755042)],
                knots=[0, 0, 0, 1, 1, 1], degree=2))
            Line((-11.638206547, -1.025755042), (-5.3, -0.421898485))
            Line((-5.3, -0.421898485), (-5.3, 0.421898485))
        make_face()
        with BuildLine():
            Line((-4.910225735, 2.039039374), (-10.751616435, 4.571954624))
            add(Edge.make_bspline(
                [(-11.385567915, 2.62085259), (-11.865505185, 3.85533634), (-10.751616435, 4.571954624)],
                knots=[0, 0, 0, 1, 1, 1], degree=2))
            Line((-11.385567915, 2.62085259), (-5.170973338, 1.236540767))
            Line((-5.170973338, 1.236540767), (-4.910225735, 2.039039374))
        make_face()
        with BuildLine():
            Line((-4.039804363, 3.456584881), (-8.812583195, 7.670619433))
            add(Edge.make_bspline(
                [(-10.018430567, 6.01091291), (-10.093401577, 7.333285498), (-8.812583195, 7.670619433)],
                knots=[0, 0, 0, 1, 1, 1], degree=2))
            Line((-10.018430567, 6.01091291), (-4.535775778, 2.773938793))
            Line((-4.535775778, 2.773938793), (-4.039804363, 3.456584881))
        make_face()
        with BuildLine():
            Line((-2.773938793, 4.535775778), (-6.01091291, 10.018430567))
            add(Edge.make_bspline(
                [(-7.670619433, 8.812583195), (-7.333285498, 10.093401577), (-6.01091291, 10.018430567)],
                knots=[0, 0, 0, 1, 1, 1], degree=2))
            Line((-7.670619433, 8.812583195), (-3.456584881, 4.039804363))
            Line((-3.456584881, 4.039804363), (-2.773938793, 4.535775778))
        make_face()
        with BuildLine():
            Line((-1.236540767, 5.170973338), (-2.62085259, 11.385567915))
            add(Edge.make_bspline(
                [(-4.571954624, 10.751616435), (-3.85533634, 11.865505185), (-2.62085259, 11.385567915)],
                knots=[0, 0, 0, 1, 1, 1], degree=2))
            Line((-4.571954624, 10.751616435), (-2.039039374, 4.910225735))
            Line((-2.039039374, 4.910225735), (-1.236540767, 5.170973338))
        make_face()
    extrude(amount=-CUT_EXTRUDE2_DEPTH, mode=Mode.SUBTRACT)


solid = part.part
